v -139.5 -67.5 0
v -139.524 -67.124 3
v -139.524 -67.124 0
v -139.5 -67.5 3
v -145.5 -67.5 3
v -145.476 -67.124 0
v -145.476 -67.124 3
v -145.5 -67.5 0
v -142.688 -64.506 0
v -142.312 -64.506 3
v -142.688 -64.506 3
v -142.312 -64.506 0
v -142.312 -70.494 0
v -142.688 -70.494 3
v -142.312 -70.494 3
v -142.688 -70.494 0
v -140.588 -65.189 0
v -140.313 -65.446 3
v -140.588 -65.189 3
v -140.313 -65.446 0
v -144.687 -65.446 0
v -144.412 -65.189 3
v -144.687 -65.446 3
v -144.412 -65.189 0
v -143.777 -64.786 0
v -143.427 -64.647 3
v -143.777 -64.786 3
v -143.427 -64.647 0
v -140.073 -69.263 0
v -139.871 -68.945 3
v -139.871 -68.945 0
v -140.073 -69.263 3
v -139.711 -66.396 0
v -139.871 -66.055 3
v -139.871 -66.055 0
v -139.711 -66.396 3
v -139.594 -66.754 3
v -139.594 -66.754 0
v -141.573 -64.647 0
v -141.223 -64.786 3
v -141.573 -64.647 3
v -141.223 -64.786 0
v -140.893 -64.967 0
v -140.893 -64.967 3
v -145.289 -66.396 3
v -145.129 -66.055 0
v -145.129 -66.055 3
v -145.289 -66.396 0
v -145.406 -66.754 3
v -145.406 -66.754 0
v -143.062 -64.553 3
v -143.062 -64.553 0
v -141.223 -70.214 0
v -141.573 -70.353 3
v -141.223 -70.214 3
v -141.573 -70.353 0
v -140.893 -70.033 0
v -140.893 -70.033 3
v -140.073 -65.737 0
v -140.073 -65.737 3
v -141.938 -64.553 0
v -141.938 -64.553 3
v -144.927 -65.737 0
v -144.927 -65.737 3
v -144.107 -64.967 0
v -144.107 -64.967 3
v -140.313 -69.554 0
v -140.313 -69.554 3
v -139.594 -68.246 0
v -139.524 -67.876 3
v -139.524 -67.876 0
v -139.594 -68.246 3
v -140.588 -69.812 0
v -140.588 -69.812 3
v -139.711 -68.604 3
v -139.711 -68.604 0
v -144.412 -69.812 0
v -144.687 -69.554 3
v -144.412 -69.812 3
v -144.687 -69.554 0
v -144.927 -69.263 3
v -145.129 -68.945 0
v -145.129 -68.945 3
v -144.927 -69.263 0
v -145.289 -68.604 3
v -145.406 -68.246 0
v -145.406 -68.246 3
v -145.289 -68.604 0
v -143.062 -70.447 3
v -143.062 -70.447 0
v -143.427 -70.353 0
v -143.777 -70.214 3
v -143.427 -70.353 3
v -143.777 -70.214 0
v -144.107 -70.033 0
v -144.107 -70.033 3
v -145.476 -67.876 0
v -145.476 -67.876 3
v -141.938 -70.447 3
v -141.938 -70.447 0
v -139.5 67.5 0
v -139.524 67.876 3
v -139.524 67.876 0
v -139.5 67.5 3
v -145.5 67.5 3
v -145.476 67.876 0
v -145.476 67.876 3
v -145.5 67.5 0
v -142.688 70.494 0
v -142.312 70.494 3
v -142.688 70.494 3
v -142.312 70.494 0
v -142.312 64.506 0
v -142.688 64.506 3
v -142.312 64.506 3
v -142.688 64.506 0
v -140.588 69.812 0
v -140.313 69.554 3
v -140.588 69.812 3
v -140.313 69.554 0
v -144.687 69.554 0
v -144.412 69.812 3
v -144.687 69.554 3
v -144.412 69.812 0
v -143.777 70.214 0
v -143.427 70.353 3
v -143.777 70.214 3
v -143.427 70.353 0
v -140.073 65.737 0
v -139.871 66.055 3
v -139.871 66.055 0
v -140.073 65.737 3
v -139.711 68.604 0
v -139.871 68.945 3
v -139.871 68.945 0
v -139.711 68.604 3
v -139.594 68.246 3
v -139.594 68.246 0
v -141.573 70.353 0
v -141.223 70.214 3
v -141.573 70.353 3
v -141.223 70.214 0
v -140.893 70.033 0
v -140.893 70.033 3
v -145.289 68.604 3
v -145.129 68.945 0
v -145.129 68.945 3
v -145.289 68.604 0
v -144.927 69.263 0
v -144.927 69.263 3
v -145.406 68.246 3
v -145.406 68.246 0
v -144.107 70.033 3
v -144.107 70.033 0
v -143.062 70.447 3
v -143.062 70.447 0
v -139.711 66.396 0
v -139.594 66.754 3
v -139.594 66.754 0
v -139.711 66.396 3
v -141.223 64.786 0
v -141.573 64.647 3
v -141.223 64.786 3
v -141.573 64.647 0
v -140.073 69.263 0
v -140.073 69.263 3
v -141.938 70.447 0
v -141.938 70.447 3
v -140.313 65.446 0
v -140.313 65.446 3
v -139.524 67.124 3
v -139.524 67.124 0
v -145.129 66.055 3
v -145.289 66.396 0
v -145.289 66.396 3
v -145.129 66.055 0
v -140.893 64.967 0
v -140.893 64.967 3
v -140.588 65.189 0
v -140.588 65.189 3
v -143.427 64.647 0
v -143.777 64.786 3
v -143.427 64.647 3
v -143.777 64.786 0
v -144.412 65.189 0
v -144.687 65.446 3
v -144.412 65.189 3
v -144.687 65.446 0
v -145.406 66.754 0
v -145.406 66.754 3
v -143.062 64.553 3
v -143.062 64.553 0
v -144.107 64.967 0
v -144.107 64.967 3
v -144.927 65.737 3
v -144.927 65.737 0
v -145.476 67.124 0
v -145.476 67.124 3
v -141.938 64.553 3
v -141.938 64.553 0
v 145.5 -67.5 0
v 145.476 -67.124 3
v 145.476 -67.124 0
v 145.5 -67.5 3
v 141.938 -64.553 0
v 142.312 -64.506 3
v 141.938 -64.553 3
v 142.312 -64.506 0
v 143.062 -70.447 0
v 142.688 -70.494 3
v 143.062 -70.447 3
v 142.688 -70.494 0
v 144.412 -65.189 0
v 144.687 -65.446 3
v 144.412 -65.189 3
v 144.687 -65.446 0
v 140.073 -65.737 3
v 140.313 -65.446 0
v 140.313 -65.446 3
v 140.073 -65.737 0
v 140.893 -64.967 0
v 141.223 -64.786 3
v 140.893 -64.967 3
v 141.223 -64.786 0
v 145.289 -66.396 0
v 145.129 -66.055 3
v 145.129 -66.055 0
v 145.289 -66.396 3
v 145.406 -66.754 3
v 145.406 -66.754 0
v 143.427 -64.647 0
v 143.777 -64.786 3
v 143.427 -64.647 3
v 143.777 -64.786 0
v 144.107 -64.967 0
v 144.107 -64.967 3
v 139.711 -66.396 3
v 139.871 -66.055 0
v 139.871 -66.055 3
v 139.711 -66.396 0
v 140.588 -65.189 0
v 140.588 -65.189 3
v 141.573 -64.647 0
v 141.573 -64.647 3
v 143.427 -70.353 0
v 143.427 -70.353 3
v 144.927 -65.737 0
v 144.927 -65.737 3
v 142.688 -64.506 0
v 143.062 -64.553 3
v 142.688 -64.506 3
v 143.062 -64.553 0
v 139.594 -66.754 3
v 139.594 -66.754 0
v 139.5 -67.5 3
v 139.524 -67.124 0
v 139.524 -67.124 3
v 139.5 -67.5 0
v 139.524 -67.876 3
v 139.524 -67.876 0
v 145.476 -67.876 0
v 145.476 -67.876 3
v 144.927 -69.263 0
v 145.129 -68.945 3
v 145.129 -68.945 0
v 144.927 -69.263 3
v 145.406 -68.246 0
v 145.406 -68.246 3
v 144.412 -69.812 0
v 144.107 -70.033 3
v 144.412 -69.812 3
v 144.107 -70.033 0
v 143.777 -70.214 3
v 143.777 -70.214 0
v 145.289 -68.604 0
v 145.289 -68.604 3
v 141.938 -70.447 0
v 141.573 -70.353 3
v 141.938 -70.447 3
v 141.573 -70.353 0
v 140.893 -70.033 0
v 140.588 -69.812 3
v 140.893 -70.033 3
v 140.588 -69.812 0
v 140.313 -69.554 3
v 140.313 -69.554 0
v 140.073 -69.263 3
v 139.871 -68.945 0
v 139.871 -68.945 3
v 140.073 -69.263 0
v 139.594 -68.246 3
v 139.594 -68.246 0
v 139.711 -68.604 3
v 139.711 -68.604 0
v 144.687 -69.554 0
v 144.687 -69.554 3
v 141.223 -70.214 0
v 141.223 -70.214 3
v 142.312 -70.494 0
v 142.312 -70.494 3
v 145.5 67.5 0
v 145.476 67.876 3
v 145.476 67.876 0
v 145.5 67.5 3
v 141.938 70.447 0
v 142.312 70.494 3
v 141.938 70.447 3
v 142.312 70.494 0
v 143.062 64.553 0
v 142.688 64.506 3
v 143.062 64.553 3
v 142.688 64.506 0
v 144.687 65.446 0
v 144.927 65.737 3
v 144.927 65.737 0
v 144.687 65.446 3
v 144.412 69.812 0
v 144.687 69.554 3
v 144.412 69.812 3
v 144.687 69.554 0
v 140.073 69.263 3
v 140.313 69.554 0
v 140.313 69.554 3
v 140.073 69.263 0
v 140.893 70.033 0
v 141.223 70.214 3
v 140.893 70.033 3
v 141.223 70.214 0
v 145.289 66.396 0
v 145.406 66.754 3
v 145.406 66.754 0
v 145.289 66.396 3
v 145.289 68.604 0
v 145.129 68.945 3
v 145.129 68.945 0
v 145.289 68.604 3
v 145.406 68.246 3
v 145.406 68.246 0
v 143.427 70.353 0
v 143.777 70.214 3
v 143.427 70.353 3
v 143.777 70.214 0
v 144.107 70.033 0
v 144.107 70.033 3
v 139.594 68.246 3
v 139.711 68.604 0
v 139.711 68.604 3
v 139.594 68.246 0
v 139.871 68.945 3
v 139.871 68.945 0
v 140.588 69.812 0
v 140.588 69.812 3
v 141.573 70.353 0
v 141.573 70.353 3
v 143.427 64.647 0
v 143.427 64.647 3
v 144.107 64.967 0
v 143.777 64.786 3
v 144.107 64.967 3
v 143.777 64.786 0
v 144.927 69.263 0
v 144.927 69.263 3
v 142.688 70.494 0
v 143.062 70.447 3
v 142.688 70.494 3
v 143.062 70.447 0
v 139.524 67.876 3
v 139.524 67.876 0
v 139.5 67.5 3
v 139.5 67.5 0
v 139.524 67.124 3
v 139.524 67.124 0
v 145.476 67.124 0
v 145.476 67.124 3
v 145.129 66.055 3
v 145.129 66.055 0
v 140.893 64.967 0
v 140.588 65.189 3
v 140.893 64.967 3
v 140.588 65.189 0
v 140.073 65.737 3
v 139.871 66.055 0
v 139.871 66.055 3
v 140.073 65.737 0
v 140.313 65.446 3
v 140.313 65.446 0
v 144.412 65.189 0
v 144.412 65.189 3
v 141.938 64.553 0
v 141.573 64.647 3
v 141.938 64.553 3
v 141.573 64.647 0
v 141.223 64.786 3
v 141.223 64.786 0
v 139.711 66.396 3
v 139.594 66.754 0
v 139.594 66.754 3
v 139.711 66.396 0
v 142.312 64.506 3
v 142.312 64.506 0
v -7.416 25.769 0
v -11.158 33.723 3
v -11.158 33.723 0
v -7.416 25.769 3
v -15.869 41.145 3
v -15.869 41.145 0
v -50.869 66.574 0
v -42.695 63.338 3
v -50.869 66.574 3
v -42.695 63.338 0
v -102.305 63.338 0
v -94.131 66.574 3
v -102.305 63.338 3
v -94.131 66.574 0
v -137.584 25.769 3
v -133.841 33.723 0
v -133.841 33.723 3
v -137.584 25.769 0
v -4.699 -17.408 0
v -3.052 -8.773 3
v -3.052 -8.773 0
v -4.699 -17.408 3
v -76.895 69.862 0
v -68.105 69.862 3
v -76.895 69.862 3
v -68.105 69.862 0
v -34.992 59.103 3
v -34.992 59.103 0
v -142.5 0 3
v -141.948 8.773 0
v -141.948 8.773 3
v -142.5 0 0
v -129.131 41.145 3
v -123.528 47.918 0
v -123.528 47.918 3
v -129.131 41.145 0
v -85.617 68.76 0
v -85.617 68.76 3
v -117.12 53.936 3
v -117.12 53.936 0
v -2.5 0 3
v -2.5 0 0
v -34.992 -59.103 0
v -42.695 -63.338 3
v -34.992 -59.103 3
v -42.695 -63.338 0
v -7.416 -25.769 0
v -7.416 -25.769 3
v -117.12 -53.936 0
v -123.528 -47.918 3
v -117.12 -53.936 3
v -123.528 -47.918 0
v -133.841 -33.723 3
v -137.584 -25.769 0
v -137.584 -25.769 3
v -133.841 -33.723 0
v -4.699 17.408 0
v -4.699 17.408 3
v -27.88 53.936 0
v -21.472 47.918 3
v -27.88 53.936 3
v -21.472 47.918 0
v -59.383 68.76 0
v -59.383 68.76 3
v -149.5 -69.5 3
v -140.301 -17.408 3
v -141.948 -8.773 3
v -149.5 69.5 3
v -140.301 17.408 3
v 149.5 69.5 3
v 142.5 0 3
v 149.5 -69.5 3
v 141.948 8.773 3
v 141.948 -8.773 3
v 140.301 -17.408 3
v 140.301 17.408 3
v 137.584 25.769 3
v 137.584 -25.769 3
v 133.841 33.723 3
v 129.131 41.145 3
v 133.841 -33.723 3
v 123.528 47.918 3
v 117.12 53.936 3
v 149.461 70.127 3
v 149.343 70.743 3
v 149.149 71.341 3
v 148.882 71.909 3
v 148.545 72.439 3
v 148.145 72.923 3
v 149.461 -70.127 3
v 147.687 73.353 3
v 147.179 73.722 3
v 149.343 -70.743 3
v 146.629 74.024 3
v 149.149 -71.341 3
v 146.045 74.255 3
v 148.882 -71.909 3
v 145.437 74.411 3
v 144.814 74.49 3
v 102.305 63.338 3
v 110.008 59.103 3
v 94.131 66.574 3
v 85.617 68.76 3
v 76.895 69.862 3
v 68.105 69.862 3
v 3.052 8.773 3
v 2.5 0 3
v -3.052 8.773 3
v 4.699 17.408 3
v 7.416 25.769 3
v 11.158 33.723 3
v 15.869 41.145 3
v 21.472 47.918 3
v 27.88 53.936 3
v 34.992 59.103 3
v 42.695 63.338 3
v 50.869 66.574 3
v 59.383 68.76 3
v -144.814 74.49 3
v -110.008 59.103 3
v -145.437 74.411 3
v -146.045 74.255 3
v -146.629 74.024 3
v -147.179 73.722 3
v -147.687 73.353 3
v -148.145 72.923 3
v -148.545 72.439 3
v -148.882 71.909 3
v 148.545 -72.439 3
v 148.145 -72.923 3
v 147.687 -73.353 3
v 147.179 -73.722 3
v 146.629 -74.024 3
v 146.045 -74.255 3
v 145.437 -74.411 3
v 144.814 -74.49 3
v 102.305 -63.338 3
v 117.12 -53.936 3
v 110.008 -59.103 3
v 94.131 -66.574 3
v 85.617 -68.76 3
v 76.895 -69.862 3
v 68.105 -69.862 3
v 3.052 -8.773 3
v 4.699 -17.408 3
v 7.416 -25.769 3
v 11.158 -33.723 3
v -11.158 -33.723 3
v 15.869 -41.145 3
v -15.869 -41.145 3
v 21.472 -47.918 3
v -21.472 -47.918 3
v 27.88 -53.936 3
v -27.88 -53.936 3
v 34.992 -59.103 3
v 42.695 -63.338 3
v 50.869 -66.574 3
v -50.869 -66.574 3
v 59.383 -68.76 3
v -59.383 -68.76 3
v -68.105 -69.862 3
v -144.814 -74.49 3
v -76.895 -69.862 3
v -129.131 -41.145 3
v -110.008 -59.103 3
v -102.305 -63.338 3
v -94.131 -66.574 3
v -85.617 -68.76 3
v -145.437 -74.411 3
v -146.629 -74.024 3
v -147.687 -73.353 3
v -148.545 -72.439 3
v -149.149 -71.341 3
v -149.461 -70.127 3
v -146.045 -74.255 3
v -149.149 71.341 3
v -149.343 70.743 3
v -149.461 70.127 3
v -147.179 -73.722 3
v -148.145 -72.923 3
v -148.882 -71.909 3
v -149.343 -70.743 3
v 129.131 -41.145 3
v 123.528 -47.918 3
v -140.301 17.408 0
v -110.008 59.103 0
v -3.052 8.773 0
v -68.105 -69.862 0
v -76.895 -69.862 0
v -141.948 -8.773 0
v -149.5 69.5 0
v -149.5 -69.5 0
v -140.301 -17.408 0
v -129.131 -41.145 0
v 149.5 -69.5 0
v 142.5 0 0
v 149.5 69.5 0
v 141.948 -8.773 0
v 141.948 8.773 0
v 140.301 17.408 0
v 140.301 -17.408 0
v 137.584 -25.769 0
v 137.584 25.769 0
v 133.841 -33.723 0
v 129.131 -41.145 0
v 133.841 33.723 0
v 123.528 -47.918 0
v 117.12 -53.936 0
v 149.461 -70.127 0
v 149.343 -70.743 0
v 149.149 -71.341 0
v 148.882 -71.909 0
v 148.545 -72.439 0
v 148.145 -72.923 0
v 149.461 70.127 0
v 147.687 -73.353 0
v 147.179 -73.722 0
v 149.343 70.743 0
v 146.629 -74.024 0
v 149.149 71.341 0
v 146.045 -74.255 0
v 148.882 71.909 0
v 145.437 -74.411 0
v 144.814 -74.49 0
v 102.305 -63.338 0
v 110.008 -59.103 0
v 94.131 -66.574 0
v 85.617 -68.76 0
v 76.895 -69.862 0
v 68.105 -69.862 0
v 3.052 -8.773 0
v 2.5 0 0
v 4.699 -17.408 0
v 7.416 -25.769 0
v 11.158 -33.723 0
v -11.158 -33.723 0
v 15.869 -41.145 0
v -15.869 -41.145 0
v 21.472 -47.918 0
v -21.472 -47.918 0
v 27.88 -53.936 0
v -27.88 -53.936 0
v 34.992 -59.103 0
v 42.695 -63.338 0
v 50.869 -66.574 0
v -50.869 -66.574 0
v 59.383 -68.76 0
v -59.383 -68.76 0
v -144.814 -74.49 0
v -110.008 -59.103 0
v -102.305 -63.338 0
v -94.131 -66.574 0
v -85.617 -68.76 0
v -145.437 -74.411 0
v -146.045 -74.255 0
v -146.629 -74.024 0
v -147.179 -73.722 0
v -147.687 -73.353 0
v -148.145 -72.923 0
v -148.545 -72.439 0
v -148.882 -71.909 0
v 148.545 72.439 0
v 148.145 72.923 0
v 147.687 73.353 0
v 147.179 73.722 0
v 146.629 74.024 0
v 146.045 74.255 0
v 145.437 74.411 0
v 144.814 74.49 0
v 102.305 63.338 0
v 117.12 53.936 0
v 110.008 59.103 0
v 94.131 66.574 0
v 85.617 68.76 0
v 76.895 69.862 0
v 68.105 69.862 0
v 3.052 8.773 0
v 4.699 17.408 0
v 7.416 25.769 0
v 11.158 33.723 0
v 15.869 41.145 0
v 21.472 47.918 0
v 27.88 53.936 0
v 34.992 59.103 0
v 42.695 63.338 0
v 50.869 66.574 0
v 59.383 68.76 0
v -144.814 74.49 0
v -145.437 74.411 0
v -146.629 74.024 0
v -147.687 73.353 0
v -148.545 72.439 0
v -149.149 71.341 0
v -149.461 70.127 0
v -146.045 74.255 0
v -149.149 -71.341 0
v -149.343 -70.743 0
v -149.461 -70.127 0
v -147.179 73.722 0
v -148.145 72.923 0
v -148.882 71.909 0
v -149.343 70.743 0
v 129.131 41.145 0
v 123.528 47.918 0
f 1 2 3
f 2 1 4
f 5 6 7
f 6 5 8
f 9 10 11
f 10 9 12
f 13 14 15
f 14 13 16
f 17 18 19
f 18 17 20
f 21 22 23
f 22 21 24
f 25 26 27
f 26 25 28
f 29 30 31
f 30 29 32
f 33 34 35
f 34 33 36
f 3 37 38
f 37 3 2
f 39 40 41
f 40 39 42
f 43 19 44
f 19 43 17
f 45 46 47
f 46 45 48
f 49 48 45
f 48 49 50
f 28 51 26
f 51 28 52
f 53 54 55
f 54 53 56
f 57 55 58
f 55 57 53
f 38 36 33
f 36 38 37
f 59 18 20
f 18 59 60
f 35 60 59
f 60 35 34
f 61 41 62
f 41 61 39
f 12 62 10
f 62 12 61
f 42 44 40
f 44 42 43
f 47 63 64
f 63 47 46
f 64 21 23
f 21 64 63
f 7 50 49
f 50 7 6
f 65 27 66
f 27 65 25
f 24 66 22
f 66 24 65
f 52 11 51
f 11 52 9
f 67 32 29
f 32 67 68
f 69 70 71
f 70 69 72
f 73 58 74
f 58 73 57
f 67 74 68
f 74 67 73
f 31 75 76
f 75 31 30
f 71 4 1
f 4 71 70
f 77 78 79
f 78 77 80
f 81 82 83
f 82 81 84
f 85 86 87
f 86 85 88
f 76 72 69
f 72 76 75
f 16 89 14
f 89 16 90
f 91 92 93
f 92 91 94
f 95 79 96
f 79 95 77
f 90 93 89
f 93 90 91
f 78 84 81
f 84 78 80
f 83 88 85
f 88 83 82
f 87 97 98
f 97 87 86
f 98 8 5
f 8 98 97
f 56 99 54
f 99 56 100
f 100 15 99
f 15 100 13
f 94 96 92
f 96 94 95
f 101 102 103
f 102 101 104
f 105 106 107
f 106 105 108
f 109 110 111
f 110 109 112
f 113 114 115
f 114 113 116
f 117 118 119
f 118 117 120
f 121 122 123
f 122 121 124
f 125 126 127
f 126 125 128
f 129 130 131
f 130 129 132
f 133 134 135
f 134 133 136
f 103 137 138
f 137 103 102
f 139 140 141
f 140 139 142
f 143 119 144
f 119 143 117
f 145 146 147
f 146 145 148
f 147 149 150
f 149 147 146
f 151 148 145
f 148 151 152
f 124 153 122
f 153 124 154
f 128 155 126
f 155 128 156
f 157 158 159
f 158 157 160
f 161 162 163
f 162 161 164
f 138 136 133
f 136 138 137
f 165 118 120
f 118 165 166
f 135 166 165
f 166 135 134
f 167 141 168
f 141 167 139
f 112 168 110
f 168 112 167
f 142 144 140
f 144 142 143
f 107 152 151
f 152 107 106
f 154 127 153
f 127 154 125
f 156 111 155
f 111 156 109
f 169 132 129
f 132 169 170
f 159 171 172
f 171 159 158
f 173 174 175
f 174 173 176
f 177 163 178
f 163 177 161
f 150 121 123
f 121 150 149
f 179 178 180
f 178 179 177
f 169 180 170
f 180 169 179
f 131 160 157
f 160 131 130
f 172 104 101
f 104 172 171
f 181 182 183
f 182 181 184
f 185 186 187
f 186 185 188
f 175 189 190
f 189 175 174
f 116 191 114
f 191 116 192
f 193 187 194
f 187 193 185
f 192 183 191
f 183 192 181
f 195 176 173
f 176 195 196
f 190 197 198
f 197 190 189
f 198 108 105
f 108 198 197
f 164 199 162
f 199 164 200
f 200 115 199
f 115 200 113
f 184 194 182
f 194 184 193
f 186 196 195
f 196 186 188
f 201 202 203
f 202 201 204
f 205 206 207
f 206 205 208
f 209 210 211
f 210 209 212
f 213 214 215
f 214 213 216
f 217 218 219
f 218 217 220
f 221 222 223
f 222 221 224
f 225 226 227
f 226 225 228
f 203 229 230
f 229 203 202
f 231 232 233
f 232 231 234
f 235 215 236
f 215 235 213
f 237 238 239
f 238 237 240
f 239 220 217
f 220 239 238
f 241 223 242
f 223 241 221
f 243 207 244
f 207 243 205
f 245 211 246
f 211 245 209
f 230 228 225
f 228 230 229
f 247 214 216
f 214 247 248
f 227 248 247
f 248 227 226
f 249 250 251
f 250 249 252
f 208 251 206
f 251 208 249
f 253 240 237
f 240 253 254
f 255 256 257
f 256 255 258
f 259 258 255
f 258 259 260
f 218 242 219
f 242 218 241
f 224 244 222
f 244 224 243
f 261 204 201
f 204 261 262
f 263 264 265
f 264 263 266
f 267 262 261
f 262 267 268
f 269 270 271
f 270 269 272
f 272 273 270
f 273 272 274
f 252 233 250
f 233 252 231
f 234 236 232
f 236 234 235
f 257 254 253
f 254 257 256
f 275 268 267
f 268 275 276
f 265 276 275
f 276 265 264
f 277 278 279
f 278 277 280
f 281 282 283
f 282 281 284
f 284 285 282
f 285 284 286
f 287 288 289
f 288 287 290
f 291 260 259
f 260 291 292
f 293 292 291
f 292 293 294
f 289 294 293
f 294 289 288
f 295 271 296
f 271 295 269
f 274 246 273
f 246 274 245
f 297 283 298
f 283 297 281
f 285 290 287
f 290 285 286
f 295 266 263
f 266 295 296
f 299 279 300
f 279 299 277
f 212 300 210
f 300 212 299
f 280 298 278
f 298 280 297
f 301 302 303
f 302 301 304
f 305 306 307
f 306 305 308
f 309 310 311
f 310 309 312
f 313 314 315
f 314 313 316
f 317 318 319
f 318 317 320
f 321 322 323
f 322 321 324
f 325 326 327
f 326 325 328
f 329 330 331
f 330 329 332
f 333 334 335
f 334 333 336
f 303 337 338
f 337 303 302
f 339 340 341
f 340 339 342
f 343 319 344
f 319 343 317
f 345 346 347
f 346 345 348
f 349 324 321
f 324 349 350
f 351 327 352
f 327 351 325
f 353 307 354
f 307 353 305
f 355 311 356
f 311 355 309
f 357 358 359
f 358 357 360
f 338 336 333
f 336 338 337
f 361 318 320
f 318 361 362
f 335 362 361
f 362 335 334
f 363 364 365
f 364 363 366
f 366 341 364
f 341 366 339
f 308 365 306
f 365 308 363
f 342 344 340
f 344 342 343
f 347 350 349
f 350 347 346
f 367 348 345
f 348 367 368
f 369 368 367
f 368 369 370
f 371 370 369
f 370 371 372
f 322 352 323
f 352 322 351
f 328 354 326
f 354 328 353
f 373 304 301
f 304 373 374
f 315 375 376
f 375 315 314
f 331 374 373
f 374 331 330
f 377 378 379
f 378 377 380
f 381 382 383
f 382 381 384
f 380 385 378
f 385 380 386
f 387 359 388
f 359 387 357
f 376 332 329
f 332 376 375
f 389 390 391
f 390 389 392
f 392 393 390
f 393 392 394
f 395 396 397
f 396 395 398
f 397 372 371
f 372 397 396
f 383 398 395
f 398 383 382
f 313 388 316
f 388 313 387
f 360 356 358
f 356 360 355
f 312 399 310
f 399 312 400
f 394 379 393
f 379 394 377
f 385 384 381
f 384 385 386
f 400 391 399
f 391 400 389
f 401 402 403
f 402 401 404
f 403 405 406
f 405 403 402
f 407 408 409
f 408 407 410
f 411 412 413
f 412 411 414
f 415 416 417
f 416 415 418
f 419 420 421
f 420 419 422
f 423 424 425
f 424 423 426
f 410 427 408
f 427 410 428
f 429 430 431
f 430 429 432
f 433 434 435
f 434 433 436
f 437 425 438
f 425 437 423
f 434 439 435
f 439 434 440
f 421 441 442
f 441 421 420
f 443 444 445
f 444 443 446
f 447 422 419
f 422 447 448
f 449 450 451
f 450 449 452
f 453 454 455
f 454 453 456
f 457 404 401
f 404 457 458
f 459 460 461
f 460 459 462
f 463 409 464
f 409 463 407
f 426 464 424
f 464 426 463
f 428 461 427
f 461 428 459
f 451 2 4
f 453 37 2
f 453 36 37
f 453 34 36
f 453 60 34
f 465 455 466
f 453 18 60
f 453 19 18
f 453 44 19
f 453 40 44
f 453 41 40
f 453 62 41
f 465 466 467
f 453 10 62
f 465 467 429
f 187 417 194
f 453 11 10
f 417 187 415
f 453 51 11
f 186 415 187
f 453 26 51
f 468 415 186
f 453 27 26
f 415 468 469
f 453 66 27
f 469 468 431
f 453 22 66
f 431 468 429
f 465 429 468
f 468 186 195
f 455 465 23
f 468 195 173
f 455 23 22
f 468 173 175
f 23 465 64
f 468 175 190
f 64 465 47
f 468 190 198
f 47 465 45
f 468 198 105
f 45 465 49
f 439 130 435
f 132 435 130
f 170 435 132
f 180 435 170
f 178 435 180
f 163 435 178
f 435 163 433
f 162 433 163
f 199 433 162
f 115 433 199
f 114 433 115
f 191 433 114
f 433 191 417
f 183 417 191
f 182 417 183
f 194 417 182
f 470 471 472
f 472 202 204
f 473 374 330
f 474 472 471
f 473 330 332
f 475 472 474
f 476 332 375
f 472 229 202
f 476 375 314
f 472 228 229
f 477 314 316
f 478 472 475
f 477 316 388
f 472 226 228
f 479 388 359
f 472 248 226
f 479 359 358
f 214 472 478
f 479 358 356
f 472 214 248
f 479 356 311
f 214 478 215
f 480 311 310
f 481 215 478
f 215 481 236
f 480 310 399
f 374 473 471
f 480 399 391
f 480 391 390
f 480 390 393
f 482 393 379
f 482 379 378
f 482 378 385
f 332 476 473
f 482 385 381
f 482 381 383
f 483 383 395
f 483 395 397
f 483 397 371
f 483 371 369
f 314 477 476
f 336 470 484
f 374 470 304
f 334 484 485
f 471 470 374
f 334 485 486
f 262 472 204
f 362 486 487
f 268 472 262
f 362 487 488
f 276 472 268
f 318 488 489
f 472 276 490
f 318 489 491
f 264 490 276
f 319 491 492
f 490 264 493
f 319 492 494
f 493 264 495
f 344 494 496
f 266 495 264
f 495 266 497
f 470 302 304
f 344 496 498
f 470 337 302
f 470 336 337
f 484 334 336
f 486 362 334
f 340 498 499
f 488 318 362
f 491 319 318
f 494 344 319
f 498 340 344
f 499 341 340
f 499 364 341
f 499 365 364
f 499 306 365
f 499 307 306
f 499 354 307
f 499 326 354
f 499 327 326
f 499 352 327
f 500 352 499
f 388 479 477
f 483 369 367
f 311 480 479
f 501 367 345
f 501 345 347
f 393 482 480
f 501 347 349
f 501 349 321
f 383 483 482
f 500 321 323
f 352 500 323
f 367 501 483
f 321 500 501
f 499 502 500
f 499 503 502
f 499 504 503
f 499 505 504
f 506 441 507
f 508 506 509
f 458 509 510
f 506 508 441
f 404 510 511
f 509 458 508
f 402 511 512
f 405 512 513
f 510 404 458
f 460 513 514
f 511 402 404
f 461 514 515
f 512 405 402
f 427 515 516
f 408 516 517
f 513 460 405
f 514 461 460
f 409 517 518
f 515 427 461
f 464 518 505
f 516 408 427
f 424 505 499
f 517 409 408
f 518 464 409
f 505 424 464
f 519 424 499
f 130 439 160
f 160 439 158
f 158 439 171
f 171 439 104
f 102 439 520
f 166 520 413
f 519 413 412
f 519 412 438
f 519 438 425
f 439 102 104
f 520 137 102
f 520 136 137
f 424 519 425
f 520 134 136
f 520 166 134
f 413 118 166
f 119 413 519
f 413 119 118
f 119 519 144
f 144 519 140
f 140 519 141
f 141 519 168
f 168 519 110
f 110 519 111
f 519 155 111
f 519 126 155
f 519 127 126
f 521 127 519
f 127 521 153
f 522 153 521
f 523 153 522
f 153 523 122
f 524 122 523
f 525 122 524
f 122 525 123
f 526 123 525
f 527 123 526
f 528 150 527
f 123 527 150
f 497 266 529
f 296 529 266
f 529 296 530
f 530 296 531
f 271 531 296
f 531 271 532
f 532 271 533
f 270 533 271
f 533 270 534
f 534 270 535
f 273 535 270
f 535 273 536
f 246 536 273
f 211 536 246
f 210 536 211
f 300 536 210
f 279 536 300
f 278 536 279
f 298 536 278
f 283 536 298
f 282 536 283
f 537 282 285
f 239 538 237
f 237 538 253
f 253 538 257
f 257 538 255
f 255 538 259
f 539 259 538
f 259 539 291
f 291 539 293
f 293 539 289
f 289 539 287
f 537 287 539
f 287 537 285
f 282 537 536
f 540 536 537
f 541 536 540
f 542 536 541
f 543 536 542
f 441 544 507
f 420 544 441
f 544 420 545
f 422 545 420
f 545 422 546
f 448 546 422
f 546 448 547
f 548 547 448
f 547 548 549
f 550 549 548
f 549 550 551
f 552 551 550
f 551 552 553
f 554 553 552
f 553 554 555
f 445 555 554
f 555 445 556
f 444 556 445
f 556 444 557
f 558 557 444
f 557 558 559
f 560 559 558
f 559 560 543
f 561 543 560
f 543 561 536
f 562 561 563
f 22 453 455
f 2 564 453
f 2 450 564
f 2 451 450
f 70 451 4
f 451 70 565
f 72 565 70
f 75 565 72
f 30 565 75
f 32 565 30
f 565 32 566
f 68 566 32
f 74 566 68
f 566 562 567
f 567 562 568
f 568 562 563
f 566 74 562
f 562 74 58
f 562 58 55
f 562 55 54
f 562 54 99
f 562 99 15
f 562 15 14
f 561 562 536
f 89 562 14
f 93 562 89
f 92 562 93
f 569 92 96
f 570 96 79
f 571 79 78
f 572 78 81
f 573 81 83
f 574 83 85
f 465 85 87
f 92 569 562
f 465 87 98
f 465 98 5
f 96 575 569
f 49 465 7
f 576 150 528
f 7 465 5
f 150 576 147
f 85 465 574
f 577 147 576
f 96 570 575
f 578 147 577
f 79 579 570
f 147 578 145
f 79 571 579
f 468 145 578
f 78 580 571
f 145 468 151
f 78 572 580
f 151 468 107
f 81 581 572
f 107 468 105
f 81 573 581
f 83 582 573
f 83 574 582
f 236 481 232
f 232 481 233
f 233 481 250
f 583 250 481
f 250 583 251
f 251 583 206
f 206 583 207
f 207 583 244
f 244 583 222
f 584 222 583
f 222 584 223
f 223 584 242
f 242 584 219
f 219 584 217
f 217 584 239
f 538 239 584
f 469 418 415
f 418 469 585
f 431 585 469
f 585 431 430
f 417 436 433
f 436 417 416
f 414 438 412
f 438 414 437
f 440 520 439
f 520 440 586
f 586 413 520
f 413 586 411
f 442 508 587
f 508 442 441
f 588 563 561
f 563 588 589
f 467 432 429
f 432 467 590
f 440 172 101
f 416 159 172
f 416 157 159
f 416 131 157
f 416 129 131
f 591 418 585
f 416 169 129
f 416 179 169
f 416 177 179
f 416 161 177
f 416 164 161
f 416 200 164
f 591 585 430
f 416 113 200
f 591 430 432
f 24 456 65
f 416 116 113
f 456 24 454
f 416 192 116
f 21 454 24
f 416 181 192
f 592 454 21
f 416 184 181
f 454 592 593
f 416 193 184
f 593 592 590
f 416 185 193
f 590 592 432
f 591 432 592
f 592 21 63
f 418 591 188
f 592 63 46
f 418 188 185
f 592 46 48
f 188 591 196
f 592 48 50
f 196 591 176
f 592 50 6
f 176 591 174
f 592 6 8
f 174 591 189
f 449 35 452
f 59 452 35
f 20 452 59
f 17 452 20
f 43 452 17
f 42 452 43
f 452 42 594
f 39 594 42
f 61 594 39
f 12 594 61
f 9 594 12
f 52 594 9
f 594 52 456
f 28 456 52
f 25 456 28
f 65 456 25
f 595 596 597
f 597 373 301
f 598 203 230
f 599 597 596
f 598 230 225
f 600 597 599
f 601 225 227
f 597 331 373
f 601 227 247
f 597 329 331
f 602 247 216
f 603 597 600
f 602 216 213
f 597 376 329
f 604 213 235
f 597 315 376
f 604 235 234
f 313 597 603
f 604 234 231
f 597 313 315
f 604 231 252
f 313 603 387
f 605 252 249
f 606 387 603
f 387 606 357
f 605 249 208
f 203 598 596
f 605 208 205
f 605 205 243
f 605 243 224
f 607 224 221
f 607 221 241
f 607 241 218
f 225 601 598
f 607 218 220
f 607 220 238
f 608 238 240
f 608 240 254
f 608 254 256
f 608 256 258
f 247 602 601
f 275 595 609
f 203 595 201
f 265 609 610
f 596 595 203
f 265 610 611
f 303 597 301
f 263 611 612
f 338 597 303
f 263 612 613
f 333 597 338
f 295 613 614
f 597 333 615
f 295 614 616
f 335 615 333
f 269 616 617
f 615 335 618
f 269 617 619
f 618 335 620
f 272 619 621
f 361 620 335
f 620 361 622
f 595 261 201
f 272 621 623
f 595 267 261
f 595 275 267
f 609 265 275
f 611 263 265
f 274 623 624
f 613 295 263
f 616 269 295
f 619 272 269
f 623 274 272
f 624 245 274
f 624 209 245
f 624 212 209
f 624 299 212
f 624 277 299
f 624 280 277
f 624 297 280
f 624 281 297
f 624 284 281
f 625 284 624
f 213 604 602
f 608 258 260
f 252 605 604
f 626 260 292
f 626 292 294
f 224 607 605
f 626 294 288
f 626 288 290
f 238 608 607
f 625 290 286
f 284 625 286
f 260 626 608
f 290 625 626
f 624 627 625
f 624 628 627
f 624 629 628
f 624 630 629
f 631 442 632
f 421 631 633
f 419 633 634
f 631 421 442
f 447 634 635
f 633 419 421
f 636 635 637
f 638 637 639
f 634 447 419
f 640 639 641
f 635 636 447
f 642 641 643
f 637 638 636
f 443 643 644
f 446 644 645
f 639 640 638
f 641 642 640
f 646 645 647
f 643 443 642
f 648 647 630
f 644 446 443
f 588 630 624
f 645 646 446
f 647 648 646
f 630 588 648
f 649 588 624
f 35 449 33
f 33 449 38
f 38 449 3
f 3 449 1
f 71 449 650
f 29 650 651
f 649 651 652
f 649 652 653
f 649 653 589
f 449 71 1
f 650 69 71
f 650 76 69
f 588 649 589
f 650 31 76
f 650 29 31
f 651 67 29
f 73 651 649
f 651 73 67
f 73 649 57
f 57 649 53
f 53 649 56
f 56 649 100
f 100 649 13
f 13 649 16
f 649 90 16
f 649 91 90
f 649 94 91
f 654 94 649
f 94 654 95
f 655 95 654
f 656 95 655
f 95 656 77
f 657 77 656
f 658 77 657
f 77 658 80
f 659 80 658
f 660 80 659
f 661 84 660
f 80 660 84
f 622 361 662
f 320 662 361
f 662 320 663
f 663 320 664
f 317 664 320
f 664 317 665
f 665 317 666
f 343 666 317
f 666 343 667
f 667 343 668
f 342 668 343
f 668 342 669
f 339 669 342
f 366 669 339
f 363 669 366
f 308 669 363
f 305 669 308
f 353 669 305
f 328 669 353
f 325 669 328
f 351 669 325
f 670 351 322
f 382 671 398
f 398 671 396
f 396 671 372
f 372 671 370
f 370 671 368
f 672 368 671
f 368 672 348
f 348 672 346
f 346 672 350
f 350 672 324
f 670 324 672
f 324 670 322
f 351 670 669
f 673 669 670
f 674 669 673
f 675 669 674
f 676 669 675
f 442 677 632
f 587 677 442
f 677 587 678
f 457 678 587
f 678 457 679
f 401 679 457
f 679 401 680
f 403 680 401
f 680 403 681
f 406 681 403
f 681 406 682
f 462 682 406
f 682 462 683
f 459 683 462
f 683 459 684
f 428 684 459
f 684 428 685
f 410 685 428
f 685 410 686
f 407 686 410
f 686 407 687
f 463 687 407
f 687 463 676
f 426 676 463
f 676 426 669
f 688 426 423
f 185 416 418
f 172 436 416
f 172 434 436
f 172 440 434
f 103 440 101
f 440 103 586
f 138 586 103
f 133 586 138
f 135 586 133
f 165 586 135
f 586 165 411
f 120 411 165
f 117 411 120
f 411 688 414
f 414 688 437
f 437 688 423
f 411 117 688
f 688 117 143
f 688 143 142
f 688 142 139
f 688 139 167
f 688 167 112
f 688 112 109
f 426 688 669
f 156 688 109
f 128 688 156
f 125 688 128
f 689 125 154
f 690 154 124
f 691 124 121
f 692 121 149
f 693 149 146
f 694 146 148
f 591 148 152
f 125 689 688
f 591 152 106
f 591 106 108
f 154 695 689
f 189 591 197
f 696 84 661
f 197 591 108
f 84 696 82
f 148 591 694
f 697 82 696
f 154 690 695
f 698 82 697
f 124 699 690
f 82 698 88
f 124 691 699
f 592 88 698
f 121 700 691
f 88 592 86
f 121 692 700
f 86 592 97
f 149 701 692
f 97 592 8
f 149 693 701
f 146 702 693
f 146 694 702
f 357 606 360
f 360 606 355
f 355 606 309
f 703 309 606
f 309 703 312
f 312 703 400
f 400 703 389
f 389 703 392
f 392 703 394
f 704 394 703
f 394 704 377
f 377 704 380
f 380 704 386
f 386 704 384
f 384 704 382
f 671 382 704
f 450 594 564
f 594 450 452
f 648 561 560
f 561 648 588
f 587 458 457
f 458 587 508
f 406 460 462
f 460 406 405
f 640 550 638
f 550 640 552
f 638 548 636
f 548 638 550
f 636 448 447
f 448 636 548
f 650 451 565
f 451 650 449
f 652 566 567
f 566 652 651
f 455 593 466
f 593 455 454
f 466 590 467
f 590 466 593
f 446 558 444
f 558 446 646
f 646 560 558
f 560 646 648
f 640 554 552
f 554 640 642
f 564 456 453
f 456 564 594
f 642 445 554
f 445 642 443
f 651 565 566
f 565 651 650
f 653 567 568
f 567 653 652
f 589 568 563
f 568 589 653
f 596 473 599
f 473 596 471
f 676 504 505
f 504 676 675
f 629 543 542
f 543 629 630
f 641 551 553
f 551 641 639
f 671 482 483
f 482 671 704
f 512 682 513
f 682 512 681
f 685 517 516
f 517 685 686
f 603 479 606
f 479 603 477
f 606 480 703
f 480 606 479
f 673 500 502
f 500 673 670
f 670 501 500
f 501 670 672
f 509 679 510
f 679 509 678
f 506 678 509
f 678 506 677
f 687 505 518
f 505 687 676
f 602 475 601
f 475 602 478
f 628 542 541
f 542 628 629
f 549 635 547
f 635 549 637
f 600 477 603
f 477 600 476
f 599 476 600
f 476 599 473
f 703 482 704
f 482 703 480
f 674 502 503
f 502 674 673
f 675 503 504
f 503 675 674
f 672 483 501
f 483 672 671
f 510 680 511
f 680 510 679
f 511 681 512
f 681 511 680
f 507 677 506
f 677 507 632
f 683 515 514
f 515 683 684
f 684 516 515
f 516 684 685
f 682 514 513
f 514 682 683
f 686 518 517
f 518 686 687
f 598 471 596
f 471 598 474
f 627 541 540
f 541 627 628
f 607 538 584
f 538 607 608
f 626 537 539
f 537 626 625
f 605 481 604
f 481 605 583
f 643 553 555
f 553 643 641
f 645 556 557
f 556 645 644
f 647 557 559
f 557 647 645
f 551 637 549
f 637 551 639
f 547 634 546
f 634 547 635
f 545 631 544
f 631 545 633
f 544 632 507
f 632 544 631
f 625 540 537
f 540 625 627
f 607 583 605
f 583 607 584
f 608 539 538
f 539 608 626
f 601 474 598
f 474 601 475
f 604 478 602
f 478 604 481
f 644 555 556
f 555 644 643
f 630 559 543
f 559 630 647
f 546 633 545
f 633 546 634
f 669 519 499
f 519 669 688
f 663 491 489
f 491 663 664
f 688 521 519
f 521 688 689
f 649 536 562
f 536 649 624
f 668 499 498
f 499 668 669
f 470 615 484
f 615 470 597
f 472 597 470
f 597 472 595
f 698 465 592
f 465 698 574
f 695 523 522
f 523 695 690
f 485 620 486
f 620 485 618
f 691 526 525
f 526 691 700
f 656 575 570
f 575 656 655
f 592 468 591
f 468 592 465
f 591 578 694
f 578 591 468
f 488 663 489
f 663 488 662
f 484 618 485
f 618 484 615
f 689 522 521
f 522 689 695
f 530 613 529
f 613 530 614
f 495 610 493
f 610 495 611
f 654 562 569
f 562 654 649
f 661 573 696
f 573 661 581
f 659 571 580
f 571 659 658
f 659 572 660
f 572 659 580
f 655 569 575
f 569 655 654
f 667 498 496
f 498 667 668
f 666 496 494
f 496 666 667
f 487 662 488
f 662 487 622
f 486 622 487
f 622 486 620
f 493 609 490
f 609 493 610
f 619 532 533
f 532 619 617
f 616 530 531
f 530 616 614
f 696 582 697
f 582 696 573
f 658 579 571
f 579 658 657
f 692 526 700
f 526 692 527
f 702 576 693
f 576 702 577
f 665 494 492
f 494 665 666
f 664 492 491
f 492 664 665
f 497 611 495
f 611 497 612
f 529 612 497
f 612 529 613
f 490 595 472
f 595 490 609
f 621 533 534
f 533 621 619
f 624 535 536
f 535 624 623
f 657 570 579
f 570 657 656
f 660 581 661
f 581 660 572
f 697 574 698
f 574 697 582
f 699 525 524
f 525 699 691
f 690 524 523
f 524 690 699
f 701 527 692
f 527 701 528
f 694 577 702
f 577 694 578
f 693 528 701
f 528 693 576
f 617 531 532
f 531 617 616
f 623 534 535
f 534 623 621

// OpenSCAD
$fn = 50;


difference() {
	union() {
		hull() {
			translate(v = [-144.5000000000, 69.5000000000, 0]) {
				cylinder(h = 3, r = 5);
			}
			translate(v = [144.5000000000, 69.5000000000, 0]) {
				cylinder(h = 3, r = 5);
			}
			translate(v = [-144.5000000000, -69.5000000000, 0]) {
				cylinder(h = 3, r = 5);
			}
			translate(v = [144.5000000000, -69.5000000000, 0]) {
				cylinder(h = 3, r = 5);
			}
		}
	}
	union() {
		#translate(v = [-142.5000000000, -67.5000000000, -100.0000000000]) {
			cylinder(h = 200, r = 3.0000000000);
		}
		#translate(v = [-142.5000000000, 67.5000000000, -100.0000000000]) {
			cylinder(h = 200, r = 3.0000000000);
		}
		#translate(v = [142.5000000000, -67.5000000000, -100.0000000000]) {
			cylinder(h = 200, r = 3.0000000000);
		}
		#translate(v = [142.5000000000, 67.5000000000, -100.0000000000]) {
			cylinder(h = 200, r = 3.0000000000);
		}
		#translate(v = [-72.5000000000, 0, 0]) {
			cylinder(h = 3, r = 70.0000000000);
		}
		#translate(v = [72.5000000000, 0, 0]) {
			cylinder(h = 3, r = 70.0000000000);
		}
	}
}
